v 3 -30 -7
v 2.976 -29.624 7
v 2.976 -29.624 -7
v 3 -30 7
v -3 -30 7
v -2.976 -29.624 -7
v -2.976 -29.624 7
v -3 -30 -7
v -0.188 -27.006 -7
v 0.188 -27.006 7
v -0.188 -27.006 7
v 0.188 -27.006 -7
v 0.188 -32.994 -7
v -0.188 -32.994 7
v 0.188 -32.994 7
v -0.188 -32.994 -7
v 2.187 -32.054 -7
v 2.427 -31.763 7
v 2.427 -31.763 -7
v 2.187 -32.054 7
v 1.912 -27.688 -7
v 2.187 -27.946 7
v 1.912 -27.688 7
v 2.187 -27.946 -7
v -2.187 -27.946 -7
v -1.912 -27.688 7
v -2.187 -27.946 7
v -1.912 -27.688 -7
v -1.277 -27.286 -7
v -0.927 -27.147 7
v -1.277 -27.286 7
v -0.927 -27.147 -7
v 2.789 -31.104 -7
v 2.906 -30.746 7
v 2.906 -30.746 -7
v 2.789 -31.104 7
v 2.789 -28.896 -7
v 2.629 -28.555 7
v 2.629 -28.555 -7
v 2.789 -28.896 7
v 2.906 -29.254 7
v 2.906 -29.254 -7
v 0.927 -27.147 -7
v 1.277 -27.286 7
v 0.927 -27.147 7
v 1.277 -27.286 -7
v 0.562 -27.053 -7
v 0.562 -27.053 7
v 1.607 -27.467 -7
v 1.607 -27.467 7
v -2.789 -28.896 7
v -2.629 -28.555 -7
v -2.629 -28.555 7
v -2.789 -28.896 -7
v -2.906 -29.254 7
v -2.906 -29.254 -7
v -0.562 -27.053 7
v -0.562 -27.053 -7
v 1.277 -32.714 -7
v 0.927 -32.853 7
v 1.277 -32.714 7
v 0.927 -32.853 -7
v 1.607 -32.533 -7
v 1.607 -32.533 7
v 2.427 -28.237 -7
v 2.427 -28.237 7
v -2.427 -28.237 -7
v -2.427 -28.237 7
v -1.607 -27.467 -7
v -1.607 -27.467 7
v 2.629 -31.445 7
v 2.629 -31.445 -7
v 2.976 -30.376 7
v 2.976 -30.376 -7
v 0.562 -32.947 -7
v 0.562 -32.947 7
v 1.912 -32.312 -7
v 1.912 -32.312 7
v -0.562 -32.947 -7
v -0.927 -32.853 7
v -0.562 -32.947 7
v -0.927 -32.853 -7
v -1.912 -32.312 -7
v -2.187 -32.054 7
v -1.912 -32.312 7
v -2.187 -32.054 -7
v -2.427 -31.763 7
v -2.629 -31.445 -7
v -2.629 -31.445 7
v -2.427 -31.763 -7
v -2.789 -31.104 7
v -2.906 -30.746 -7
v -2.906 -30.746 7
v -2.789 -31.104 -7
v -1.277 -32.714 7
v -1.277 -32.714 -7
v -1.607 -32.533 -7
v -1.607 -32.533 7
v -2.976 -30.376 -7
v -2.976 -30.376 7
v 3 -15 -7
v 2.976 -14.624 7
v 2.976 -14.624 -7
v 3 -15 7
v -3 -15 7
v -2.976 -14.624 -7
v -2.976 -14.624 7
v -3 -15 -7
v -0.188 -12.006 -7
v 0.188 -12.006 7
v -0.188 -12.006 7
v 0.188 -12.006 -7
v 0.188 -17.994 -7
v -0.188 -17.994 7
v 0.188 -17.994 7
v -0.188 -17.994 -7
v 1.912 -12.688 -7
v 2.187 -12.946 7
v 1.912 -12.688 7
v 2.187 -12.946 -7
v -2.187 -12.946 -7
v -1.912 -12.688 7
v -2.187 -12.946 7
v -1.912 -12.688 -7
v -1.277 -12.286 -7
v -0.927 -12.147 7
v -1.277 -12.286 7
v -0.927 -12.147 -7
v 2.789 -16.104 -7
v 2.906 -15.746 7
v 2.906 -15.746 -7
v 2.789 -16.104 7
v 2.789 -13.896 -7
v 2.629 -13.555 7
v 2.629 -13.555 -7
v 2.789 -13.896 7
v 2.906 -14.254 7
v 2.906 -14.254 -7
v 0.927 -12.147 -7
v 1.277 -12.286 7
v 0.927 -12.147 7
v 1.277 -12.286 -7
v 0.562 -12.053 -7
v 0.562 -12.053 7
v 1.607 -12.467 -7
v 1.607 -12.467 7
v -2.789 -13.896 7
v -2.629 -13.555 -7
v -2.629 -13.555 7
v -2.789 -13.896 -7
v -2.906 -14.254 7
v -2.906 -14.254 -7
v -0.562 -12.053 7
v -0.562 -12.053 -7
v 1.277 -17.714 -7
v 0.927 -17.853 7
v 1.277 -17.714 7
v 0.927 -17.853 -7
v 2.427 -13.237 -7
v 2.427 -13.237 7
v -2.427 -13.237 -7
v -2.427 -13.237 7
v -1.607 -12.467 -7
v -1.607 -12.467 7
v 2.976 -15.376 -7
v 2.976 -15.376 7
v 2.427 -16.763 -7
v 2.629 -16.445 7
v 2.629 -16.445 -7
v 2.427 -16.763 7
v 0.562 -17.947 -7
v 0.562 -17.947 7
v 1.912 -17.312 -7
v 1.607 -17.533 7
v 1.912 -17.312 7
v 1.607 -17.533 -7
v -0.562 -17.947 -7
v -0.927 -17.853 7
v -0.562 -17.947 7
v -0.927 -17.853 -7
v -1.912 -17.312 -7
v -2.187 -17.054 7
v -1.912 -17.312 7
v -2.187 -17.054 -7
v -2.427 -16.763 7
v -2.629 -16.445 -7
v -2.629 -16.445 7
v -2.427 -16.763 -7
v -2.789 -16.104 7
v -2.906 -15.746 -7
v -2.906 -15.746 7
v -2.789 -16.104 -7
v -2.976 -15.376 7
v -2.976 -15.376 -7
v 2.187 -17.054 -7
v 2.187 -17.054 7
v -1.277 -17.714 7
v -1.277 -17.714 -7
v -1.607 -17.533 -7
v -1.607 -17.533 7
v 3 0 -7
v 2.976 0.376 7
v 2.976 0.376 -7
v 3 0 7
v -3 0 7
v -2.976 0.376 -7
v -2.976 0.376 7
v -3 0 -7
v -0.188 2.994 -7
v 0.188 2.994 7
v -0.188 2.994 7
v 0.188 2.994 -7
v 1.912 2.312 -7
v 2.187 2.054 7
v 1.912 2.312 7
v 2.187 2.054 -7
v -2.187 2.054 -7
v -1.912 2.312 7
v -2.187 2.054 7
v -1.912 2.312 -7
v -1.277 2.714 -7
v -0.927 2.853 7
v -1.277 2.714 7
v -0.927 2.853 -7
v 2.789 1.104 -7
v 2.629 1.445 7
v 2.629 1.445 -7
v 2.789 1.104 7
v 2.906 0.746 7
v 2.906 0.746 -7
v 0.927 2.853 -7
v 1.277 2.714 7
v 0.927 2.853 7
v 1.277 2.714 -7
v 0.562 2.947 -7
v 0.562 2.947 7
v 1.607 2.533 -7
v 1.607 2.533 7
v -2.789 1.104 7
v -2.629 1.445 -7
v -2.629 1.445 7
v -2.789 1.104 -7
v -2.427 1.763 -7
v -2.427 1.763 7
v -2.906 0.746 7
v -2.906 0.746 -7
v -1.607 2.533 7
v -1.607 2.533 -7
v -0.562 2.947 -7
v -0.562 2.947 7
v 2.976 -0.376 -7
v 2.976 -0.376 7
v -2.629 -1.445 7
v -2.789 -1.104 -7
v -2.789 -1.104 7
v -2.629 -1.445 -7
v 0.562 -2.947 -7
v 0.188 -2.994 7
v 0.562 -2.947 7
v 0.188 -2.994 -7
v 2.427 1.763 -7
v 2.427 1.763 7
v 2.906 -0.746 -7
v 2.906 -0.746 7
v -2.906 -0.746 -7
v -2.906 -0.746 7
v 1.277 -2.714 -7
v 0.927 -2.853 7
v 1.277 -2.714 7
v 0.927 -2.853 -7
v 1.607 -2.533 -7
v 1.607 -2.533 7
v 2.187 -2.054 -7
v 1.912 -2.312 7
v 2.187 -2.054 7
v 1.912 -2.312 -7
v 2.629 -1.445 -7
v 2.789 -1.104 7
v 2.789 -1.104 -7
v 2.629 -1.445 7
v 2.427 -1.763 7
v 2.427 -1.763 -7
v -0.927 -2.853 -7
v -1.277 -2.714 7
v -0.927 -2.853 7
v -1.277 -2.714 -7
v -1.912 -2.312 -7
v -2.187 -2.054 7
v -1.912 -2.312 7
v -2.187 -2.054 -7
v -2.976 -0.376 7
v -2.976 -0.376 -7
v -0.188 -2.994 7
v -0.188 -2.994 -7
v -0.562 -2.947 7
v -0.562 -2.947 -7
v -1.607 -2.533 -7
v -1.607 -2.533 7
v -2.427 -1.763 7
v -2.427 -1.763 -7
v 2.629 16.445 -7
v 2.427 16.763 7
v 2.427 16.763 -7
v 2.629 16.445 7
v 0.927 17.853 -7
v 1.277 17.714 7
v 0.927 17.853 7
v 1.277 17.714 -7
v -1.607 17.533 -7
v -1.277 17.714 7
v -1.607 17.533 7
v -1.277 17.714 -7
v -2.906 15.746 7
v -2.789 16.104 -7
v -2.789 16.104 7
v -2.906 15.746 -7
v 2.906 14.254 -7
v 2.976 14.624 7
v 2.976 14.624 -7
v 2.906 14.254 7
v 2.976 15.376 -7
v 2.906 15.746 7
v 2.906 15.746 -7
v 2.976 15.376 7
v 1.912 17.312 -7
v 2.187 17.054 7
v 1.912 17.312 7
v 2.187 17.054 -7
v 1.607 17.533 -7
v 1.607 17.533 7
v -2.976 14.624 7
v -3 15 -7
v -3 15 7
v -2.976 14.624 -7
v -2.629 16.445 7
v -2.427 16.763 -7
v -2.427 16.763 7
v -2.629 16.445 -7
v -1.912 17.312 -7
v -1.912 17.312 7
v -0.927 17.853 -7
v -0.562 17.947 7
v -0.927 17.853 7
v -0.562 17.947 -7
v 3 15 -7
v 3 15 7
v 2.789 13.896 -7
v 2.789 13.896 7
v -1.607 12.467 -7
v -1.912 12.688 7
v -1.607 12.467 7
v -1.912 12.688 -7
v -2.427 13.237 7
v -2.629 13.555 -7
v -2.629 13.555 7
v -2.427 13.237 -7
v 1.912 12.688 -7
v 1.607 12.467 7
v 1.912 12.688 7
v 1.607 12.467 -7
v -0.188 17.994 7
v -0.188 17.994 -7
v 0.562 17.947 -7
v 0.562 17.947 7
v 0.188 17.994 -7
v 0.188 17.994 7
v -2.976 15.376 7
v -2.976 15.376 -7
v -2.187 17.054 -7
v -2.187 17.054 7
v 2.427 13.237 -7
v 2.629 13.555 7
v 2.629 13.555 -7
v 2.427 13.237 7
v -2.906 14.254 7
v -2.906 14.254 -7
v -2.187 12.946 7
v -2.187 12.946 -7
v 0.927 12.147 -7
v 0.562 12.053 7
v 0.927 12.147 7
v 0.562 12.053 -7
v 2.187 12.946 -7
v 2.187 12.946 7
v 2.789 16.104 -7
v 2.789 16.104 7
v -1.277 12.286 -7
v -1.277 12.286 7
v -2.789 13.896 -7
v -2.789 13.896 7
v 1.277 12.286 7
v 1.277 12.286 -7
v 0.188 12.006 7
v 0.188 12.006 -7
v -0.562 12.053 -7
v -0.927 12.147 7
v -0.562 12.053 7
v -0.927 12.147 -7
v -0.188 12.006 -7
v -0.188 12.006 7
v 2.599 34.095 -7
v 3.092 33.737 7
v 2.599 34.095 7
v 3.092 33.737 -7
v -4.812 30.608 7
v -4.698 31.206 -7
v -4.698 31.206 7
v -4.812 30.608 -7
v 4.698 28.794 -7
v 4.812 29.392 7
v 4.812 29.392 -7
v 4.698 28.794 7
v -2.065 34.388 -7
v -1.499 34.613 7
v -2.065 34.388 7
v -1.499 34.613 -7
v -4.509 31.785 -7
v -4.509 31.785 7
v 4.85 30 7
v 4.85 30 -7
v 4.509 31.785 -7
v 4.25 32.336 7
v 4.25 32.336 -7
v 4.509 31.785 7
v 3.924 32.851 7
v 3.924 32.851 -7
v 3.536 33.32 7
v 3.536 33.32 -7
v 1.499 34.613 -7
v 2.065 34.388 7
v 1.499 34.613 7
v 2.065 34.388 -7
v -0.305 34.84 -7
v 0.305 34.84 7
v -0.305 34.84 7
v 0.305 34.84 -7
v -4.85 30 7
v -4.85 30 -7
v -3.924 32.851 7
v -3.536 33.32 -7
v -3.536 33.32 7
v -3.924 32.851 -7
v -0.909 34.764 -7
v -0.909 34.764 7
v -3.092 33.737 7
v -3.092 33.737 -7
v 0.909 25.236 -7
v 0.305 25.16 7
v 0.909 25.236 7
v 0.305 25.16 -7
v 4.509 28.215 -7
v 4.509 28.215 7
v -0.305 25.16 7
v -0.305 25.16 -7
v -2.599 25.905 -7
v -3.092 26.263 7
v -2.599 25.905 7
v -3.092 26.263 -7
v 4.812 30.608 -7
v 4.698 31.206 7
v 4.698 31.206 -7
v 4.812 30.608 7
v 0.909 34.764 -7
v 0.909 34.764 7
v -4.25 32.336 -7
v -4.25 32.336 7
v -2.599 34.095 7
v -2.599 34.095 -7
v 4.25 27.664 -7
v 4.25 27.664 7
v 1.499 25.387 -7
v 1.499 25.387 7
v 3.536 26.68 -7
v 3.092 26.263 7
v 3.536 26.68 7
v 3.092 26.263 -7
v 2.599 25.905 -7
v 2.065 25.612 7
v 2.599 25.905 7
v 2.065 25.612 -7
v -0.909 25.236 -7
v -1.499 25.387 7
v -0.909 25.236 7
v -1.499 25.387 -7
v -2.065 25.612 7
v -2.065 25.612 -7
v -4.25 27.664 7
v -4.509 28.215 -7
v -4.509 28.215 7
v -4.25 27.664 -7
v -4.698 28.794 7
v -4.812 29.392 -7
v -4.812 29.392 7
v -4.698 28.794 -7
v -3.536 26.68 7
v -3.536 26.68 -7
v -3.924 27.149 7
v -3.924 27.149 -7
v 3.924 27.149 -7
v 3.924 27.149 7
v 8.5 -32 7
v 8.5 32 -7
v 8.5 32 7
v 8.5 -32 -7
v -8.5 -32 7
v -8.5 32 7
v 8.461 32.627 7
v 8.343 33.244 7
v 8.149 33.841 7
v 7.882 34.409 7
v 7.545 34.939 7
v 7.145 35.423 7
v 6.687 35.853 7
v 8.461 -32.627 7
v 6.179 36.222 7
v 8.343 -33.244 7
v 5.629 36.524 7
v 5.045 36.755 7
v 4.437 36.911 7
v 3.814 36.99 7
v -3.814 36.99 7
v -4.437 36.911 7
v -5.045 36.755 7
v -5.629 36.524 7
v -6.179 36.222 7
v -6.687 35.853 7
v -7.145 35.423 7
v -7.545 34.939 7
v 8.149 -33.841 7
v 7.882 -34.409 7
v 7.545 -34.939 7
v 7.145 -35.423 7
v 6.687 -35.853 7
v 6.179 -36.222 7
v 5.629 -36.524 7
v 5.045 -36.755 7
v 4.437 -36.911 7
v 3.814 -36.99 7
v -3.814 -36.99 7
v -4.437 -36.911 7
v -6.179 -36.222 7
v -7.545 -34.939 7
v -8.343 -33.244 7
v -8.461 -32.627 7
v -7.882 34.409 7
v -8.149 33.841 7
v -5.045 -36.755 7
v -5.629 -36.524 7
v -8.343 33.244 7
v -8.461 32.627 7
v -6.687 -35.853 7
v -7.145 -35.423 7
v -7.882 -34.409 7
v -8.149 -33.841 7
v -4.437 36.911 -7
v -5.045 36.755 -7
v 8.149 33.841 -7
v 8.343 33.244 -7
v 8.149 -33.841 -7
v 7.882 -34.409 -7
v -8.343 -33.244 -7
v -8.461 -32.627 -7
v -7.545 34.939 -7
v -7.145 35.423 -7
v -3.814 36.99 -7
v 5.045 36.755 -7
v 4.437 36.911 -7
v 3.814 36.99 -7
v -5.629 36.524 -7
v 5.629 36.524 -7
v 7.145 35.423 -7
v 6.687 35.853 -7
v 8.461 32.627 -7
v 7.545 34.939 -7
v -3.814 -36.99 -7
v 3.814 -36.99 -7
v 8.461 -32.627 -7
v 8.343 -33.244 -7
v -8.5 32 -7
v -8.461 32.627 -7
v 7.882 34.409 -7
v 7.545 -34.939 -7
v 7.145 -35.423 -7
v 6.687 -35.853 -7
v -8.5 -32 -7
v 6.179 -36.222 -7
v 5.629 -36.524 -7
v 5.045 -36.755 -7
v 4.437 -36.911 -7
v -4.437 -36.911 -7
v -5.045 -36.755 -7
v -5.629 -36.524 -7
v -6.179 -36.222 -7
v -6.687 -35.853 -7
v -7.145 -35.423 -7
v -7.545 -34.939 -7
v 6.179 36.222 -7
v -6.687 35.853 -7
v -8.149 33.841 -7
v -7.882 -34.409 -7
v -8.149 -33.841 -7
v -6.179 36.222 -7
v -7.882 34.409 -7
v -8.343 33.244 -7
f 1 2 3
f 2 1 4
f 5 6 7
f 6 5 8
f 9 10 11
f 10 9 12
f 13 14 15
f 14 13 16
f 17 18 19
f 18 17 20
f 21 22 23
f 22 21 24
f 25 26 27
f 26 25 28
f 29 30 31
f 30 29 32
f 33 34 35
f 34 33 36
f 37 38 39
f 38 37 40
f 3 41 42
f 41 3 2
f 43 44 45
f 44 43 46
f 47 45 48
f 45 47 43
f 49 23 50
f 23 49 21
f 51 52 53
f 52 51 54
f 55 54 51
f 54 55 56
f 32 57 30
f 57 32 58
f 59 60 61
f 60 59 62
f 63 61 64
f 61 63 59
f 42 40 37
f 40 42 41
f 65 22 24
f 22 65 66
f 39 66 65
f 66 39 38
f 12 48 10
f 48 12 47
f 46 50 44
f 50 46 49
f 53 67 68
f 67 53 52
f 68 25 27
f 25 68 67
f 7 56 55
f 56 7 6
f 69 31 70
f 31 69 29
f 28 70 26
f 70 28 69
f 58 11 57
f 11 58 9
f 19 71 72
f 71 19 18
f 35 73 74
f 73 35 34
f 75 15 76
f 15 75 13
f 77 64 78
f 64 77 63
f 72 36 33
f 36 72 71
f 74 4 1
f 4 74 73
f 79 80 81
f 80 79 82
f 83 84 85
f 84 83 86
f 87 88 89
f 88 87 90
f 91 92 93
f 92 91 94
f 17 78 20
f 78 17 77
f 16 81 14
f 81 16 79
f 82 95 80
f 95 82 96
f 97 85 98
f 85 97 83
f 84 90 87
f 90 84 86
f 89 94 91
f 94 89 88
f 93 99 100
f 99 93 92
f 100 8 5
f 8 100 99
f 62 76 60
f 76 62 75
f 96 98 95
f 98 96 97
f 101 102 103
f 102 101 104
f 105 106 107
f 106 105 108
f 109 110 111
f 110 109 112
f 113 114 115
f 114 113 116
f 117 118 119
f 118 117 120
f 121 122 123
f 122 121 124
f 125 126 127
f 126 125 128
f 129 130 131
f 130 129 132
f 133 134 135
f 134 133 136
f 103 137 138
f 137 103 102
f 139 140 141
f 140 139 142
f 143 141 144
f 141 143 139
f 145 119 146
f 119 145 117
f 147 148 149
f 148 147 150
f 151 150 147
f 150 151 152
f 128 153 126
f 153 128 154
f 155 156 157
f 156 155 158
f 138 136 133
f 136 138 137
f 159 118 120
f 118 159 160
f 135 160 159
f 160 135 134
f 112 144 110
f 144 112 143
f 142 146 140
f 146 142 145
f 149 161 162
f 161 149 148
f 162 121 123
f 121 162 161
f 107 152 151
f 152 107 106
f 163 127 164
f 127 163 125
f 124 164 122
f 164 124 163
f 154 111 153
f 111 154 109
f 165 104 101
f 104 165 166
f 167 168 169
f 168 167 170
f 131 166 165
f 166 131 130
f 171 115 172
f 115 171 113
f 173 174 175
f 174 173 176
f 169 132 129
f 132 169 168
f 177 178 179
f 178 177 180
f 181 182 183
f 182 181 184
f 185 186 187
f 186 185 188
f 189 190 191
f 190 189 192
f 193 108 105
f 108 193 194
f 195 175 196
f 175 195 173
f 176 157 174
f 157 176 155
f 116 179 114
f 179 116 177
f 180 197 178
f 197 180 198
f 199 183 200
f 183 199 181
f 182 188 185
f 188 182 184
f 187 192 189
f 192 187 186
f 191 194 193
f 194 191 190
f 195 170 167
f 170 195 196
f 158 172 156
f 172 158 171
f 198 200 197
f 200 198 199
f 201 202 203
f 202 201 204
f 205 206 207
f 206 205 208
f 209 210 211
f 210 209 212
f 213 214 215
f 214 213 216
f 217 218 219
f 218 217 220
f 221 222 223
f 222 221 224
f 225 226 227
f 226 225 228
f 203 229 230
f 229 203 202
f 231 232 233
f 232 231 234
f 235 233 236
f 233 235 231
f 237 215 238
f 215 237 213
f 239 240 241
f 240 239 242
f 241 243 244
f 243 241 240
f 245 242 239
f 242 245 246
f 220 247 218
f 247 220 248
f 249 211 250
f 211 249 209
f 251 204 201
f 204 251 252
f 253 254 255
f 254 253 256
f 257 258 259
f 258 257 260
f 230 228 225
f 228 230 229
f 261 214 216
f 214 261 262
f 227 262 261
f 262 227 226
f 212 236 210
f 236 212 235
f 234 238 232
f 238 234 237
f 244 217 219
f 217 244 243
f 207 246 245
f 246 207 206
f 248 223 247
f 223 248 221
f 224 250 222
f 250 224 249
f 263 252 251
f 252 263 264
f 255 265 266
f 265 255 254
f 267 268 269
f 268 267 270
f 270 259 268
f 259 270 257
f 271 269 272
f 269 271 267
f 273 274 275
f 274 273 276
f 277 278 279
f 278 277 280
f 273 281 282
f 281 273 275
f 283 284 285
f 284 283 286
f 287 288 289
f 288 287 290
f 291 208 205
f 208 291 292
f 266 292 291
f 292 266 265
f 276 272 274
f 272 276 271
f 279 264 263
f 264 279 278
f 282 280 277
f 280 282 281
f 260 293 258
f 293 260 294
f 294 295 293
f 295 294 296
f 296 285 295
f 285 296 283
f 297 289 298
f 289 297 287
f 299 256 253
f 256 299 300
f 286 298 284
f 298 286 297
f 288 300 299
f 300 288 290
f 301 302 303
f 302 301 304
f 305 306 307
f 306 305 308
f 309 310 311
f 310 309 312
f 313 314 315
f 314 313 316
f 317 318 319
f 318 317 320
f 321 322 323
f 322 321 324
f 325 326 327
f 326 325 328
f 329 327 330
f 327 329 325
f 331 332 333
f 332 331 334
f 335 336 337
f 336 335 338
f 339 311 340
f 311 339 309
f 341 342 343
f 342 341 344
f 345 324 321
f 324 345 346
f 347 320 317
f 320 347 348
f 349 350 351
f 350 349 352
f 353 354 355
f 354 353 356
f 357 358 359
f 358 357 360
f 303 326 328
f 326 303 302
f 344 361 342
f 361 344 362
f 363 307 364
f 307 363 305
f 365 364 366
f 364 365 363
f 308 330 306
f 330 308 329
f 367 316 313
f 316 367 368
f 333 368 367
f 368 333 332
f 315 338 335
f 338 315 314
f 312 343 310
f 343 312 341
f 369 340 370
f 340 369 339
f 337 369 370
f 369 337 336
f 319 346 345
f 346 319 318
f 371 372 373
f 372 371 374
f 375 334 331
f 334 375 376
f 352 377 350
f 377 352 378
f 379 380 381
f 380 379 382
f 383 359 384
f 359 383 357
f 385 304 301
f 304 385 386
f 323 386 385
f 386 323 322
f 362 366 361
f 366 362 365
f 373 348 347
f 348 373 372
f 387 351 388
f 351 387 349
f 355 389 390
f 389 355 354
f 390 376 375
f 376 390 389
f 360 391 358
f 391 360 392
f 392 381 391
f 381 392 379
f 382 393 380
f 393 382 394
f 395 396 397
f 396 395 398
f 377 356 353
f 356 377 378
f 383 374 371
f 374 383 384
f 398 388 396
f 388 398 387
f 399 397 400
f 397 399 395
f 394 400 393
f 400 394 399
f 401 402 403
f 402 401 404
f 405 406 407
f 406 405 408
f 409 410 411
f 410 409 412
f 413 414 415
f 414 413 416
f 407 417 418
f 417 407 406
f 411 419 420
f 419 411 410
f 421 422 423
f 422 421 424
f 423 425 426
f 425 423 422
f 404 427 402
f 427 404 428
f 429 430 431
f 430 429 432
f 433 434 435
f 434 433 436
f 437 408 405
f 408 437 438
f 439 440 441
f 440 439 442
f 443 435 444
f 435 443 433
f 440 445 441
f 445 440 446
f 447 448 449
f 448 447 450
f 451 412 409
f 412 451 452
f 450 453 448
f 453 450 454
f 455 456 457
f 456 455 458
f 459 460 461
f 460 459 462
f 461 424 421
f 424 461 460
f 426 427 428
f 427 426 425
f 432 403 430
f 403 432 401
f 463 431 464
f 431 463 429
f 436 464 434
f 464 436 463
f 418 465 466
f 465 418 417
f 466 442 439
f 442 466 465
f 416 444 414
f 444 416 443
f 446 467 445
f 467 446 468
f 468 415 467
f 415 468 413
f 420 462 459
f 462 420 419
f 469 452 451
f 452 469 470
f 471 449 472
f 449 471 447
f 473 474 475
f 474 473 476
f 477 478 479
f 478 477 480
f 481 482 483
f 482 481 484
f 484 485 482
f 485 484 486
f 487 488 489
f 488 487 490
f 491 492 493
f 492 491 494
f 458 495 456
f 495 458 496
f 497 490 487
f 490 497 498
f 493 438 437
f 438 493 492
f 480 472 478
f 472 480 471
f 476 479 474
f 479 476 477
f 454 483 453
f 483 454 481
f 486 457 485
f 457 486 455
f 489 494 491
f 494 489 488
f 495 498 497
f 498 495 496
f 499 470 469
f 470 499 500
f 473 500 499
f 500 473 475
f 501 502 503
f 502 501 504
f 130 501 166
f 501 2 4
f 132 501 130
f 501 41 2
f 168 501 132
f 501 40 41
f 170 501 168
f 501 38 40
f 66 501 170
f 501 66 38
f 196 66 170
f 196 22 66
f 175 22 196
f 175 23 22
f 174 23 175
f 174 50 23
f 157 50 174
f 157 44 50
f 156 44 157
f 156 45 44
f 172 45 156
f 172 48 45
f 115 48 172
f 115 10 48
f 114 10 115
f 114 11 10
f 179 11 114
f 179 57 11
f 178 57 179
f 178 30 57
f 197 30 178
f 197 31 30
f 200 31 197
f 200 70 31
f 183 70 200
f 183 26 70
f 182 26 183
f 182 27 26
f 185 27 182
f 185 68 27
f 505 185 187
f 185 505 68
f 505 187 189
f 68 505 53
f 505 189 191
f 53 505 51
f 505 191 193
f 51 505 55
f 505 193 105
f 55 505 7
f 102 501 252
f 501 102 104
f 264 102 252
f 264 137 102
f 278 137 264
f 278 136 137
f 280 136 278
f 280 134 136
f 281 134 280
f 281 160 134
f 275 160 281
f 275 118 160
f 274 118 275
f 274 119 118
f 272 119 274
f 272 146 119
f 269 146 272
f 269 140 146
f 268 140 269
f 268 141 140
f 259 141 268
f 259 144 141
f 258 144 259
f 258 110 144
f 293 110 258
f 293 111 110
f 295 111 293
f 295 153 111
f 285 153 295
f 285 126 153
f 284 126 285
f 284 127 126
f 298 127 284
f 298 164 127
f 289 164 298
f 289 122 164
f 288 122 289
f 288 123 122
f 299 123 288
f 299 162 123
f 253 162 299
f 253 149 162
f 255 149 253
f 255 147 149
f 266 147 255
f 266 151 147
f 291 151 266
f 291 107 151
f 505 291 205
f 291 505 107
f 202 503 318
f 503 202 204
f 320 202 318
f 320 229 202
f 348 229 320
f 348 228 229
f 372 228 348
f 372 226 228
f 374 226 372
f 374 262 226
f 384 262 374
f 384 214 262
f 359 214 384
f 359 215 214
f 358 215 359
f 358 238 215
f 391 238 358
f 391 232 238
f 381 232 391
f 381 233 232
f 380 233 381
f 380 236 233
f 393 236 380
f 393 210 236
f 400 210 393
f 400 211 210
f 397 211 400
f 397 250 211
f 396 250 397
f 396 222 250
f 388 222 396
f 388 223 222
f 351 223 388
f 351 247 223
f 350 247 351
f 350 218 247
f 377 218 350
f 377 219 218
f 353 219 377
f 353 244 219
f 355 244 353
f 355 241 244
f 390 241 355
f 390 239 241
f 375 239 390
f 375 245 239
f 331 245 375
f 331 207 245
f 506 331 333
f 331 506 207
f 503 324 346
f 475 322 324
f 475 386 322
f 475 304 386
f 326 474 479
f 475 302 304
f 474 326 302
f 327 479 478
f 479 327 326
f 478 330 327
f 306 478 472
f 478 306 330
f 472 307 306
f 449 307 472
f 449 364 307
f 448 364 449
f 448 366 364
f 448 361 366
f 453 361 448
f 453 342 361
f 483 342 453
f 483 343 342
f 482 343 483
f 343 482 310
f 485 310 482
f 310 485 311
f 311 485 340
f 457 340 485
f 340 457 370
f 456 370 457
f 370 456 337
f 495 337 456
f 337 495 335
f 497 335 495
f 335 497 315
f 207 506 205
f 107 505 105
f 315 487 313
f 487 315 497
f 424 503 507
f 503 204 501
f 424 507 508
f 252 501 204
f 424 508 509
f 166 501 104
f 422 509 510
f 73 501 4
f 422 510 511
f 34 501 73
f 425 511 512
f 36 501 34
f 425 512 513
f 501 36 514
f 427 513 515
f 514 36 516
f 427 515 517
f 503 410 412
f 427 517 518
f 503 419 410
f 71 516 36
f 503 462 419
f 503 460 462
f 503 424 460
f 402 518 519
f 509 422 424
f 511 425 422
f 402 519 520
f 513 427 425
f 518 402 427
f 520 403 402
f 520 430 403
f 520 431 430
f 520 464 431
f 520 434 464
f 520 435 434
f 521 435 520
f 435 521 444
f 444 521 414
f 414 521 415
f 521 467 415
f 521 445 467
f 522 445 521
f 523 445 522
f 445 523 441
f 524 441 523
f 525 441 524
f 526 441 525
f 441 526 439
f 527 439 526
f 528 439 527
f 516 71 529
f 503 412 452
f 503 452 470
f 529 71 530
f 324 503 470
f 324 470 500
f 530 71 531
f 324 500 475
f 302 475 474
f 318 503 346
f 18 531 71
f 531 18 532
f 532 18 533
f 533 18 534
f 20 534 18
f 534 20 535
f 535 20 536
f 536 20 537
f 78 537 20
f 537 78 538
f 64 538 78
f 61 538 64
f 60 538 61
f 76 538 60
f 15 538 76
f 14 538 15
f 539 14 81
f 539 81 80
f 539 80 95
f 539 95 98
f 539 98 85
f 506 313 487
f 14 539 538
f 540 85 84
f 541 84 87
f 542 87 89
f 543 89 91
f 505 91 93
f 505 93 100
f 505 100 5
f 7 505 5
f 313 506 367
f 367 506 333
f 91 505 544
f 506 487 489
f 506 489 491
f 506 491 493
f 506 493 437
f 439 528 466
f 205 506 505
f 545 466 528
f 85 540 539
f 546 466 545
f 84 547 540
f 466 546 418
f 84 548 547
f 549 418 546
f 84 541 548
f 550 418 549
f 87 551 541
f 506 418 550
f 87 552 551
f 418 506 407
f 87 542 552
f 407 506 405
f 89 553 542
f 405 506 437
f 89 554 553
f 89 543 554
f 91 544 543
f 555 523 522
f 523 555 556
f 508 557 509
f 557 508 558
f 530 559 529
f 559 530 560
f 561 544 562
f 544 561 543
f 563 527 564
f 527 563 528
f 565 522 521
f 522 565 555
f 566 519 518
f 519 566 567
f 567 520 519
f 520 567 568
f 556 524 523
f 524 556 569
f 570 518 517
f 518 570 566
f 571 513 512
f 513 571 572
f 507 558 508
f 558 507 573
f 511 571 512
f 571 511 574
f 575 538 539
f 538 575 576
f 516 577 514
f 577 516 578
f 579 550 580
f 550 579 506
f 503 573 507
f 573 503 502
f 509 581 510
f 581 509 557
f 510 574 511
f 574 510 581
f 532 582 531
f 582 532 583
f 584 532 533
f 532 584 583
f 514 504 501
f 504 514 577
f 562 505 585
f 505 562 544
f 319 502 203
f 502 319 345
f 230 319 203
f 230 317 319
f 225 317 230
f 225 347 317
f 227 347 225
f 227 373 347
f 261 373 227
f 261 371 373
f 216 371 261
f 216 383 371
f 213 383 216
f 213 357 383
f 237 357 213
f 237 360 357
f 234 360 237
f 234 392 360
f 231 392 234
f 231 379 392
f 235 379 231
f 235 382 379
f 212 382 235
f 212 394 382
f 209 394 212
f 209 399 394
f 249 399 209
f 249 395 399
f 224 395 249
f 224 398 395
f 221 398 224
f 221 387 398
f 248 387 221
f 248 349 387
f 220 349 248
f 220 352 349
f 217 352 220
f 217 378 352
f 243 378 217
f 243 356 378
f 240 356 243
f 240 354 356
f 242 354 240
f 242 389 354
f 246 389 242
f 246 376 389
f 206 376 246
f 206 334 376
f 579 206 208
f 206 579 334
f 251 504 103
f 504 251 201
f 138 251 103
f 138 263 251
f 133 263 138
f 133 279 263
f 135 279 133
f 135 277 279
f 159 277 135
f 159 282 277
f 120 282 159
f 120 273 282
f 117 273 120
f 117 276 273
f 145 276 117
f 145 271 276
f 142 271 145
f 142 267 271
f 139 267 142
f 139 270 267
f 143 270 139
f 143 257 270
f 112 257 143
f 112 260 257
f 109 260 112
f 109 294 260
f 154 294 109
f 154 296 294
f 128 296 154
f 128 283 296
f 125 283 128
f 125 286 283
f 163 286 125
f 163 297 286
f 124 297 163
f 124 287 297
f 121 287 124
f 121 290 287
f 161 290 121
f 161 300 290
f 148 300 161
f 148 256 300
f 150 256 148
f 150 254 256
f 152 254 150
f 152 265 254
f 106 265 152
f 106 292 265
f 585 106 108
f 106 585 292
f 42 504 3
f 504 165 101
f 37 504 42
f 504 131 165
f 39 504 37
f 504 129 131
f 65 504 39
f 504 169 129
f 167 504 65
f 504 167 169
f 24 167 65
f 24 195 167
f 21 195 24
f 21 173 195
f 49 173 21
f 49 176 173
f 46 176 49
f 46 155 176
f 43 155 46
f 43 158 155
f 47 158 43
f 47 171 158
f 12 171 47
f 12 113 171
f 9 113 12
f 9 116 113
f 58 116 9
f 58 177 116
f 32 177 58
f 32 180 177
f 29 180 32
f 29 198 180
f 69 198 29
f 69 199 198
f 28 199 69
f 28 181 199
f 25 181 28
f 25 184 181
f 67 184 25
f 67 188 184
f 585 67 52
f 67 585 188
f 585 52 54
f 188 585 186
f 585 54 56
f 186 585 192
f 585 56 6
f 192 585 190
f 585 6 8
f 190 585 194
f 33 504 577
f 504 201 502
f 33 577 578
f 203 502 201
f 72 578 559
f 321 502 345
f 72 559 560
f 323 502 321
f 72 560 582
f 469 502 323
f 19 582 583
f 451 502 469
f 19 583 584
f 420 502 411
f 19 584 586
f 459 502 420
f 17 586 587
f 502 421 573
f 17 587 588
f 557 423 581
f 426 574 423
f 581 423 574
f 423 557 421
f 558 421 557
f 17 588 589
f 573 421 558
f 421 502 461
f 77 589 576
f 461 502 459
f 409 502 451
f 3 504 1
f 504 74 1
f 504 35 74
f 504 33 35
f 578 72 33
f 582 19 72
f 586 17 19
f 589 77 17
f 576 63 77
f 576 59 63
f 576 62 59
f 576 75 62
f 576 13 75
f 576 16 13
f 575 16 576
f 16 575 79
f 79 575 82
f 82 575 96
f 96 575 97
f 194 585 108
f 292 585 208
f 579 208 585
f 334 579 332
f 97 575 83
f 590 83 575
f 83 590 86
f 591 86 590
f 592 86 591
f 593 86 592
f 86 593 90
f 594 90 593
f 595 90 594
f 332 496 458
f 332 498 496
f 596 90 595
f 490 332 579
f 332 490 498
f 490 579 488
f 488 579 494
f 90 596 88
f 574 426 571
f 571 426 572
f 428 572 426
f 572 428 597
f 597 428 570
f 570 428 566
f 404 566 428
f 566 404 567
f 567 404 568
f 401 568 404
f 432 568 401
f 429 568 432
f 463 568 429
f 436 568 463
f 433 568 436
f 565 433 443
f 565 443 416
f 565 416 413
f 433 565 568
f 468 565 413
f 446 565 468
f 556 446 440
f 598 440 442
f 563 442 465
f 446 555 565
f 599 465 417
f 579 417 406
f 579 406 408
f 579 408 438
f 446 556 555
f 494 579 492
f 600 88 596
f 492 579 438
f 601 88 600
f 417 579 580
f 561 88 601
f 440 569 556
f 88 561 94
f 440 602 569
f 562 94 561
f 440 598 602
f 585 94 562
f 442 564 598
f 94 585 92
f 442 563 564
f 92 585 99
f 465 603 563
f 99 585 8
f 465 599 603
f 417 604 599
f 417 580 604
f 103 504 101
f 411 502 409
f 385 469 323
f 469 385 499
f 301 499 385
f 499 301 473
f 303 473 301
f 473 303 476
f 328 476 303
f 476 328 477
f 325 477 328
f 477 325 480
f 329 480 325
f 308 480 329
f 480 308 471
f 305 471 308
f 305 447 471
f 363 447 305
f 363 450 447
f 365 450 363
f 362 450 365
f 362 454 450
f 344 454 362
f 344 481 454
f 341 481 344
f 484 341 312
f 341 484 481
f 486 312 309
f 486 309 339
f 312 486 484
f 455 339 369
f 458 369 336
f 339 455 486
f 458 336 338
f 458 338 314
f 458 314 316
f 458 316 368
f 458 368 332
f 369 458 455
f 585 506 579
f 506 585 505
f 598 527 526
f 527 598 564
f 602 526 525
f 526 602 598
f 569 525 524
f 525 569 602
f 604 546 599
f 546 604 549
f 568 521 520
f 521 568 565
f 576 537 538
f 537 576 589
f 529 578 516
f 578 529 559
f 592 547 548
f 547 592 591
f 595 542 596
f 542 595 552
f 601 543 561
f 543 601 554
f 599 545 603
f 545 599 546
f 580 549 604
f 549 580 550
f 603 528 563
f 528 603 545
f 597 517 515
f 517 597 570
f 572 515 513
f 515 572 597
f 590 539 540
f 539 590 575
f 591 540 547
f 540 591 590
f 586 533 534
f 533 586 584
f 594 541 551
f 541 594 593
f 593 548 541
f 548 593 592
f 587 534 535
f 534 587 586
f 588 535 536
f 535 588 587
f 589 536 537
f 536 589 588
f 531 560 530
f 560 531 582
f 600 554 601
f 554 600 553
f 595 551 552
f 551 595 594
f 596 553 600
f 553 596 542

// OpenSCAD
$fn = 50;


difference() {
	union() {
		translate(v = [0, 0, -7.0000000000]) {
			hull() {
				translate(v = [-3.5000000000, 32.0000000000, 0]) {
					cylinder(h = 14, r = 5);
				}
				translate(v = [3.5000000000, 32.0000000000, 0]) {
					cylinder(h = 14, r = 5);
				}
				translate(v = [-3.5000000000, -32.0000000000, 0]) {
					cylinder(h = 14, r = 5);
				}
				translate(v = [3.5000000000, -32.0000000000, 0]) {
					cylinder(h = 14, r = 5);
				}
			}
		}
	}
	union() {
		translate(v = [0.0000000000, -30.0000000000, -100.0000000000]) {
			cylinder(h = 200, r = 3.0000000000);
		}
		translate(v = [0.0000000000, -15.0000000000, -100.0000000000]) {
			cylinder(h = 200, r = 3.0000000000);
		}
		translate(v = [0.0000000000, 0.0000000000, -100.0000000000]) {
			cylinder(h = 200, r = 3.0000000000);
		}
		translate(v = [0.0000000000, 15.0000000000, -100.0000000000]) {
			cylinder(h = 200, r = 3.0000000000);
		}
		translate(v = [0, 30, -100.0000000000]) {
			cylinder(h = 200, r = 4.8500000000);
		}
	}
}
